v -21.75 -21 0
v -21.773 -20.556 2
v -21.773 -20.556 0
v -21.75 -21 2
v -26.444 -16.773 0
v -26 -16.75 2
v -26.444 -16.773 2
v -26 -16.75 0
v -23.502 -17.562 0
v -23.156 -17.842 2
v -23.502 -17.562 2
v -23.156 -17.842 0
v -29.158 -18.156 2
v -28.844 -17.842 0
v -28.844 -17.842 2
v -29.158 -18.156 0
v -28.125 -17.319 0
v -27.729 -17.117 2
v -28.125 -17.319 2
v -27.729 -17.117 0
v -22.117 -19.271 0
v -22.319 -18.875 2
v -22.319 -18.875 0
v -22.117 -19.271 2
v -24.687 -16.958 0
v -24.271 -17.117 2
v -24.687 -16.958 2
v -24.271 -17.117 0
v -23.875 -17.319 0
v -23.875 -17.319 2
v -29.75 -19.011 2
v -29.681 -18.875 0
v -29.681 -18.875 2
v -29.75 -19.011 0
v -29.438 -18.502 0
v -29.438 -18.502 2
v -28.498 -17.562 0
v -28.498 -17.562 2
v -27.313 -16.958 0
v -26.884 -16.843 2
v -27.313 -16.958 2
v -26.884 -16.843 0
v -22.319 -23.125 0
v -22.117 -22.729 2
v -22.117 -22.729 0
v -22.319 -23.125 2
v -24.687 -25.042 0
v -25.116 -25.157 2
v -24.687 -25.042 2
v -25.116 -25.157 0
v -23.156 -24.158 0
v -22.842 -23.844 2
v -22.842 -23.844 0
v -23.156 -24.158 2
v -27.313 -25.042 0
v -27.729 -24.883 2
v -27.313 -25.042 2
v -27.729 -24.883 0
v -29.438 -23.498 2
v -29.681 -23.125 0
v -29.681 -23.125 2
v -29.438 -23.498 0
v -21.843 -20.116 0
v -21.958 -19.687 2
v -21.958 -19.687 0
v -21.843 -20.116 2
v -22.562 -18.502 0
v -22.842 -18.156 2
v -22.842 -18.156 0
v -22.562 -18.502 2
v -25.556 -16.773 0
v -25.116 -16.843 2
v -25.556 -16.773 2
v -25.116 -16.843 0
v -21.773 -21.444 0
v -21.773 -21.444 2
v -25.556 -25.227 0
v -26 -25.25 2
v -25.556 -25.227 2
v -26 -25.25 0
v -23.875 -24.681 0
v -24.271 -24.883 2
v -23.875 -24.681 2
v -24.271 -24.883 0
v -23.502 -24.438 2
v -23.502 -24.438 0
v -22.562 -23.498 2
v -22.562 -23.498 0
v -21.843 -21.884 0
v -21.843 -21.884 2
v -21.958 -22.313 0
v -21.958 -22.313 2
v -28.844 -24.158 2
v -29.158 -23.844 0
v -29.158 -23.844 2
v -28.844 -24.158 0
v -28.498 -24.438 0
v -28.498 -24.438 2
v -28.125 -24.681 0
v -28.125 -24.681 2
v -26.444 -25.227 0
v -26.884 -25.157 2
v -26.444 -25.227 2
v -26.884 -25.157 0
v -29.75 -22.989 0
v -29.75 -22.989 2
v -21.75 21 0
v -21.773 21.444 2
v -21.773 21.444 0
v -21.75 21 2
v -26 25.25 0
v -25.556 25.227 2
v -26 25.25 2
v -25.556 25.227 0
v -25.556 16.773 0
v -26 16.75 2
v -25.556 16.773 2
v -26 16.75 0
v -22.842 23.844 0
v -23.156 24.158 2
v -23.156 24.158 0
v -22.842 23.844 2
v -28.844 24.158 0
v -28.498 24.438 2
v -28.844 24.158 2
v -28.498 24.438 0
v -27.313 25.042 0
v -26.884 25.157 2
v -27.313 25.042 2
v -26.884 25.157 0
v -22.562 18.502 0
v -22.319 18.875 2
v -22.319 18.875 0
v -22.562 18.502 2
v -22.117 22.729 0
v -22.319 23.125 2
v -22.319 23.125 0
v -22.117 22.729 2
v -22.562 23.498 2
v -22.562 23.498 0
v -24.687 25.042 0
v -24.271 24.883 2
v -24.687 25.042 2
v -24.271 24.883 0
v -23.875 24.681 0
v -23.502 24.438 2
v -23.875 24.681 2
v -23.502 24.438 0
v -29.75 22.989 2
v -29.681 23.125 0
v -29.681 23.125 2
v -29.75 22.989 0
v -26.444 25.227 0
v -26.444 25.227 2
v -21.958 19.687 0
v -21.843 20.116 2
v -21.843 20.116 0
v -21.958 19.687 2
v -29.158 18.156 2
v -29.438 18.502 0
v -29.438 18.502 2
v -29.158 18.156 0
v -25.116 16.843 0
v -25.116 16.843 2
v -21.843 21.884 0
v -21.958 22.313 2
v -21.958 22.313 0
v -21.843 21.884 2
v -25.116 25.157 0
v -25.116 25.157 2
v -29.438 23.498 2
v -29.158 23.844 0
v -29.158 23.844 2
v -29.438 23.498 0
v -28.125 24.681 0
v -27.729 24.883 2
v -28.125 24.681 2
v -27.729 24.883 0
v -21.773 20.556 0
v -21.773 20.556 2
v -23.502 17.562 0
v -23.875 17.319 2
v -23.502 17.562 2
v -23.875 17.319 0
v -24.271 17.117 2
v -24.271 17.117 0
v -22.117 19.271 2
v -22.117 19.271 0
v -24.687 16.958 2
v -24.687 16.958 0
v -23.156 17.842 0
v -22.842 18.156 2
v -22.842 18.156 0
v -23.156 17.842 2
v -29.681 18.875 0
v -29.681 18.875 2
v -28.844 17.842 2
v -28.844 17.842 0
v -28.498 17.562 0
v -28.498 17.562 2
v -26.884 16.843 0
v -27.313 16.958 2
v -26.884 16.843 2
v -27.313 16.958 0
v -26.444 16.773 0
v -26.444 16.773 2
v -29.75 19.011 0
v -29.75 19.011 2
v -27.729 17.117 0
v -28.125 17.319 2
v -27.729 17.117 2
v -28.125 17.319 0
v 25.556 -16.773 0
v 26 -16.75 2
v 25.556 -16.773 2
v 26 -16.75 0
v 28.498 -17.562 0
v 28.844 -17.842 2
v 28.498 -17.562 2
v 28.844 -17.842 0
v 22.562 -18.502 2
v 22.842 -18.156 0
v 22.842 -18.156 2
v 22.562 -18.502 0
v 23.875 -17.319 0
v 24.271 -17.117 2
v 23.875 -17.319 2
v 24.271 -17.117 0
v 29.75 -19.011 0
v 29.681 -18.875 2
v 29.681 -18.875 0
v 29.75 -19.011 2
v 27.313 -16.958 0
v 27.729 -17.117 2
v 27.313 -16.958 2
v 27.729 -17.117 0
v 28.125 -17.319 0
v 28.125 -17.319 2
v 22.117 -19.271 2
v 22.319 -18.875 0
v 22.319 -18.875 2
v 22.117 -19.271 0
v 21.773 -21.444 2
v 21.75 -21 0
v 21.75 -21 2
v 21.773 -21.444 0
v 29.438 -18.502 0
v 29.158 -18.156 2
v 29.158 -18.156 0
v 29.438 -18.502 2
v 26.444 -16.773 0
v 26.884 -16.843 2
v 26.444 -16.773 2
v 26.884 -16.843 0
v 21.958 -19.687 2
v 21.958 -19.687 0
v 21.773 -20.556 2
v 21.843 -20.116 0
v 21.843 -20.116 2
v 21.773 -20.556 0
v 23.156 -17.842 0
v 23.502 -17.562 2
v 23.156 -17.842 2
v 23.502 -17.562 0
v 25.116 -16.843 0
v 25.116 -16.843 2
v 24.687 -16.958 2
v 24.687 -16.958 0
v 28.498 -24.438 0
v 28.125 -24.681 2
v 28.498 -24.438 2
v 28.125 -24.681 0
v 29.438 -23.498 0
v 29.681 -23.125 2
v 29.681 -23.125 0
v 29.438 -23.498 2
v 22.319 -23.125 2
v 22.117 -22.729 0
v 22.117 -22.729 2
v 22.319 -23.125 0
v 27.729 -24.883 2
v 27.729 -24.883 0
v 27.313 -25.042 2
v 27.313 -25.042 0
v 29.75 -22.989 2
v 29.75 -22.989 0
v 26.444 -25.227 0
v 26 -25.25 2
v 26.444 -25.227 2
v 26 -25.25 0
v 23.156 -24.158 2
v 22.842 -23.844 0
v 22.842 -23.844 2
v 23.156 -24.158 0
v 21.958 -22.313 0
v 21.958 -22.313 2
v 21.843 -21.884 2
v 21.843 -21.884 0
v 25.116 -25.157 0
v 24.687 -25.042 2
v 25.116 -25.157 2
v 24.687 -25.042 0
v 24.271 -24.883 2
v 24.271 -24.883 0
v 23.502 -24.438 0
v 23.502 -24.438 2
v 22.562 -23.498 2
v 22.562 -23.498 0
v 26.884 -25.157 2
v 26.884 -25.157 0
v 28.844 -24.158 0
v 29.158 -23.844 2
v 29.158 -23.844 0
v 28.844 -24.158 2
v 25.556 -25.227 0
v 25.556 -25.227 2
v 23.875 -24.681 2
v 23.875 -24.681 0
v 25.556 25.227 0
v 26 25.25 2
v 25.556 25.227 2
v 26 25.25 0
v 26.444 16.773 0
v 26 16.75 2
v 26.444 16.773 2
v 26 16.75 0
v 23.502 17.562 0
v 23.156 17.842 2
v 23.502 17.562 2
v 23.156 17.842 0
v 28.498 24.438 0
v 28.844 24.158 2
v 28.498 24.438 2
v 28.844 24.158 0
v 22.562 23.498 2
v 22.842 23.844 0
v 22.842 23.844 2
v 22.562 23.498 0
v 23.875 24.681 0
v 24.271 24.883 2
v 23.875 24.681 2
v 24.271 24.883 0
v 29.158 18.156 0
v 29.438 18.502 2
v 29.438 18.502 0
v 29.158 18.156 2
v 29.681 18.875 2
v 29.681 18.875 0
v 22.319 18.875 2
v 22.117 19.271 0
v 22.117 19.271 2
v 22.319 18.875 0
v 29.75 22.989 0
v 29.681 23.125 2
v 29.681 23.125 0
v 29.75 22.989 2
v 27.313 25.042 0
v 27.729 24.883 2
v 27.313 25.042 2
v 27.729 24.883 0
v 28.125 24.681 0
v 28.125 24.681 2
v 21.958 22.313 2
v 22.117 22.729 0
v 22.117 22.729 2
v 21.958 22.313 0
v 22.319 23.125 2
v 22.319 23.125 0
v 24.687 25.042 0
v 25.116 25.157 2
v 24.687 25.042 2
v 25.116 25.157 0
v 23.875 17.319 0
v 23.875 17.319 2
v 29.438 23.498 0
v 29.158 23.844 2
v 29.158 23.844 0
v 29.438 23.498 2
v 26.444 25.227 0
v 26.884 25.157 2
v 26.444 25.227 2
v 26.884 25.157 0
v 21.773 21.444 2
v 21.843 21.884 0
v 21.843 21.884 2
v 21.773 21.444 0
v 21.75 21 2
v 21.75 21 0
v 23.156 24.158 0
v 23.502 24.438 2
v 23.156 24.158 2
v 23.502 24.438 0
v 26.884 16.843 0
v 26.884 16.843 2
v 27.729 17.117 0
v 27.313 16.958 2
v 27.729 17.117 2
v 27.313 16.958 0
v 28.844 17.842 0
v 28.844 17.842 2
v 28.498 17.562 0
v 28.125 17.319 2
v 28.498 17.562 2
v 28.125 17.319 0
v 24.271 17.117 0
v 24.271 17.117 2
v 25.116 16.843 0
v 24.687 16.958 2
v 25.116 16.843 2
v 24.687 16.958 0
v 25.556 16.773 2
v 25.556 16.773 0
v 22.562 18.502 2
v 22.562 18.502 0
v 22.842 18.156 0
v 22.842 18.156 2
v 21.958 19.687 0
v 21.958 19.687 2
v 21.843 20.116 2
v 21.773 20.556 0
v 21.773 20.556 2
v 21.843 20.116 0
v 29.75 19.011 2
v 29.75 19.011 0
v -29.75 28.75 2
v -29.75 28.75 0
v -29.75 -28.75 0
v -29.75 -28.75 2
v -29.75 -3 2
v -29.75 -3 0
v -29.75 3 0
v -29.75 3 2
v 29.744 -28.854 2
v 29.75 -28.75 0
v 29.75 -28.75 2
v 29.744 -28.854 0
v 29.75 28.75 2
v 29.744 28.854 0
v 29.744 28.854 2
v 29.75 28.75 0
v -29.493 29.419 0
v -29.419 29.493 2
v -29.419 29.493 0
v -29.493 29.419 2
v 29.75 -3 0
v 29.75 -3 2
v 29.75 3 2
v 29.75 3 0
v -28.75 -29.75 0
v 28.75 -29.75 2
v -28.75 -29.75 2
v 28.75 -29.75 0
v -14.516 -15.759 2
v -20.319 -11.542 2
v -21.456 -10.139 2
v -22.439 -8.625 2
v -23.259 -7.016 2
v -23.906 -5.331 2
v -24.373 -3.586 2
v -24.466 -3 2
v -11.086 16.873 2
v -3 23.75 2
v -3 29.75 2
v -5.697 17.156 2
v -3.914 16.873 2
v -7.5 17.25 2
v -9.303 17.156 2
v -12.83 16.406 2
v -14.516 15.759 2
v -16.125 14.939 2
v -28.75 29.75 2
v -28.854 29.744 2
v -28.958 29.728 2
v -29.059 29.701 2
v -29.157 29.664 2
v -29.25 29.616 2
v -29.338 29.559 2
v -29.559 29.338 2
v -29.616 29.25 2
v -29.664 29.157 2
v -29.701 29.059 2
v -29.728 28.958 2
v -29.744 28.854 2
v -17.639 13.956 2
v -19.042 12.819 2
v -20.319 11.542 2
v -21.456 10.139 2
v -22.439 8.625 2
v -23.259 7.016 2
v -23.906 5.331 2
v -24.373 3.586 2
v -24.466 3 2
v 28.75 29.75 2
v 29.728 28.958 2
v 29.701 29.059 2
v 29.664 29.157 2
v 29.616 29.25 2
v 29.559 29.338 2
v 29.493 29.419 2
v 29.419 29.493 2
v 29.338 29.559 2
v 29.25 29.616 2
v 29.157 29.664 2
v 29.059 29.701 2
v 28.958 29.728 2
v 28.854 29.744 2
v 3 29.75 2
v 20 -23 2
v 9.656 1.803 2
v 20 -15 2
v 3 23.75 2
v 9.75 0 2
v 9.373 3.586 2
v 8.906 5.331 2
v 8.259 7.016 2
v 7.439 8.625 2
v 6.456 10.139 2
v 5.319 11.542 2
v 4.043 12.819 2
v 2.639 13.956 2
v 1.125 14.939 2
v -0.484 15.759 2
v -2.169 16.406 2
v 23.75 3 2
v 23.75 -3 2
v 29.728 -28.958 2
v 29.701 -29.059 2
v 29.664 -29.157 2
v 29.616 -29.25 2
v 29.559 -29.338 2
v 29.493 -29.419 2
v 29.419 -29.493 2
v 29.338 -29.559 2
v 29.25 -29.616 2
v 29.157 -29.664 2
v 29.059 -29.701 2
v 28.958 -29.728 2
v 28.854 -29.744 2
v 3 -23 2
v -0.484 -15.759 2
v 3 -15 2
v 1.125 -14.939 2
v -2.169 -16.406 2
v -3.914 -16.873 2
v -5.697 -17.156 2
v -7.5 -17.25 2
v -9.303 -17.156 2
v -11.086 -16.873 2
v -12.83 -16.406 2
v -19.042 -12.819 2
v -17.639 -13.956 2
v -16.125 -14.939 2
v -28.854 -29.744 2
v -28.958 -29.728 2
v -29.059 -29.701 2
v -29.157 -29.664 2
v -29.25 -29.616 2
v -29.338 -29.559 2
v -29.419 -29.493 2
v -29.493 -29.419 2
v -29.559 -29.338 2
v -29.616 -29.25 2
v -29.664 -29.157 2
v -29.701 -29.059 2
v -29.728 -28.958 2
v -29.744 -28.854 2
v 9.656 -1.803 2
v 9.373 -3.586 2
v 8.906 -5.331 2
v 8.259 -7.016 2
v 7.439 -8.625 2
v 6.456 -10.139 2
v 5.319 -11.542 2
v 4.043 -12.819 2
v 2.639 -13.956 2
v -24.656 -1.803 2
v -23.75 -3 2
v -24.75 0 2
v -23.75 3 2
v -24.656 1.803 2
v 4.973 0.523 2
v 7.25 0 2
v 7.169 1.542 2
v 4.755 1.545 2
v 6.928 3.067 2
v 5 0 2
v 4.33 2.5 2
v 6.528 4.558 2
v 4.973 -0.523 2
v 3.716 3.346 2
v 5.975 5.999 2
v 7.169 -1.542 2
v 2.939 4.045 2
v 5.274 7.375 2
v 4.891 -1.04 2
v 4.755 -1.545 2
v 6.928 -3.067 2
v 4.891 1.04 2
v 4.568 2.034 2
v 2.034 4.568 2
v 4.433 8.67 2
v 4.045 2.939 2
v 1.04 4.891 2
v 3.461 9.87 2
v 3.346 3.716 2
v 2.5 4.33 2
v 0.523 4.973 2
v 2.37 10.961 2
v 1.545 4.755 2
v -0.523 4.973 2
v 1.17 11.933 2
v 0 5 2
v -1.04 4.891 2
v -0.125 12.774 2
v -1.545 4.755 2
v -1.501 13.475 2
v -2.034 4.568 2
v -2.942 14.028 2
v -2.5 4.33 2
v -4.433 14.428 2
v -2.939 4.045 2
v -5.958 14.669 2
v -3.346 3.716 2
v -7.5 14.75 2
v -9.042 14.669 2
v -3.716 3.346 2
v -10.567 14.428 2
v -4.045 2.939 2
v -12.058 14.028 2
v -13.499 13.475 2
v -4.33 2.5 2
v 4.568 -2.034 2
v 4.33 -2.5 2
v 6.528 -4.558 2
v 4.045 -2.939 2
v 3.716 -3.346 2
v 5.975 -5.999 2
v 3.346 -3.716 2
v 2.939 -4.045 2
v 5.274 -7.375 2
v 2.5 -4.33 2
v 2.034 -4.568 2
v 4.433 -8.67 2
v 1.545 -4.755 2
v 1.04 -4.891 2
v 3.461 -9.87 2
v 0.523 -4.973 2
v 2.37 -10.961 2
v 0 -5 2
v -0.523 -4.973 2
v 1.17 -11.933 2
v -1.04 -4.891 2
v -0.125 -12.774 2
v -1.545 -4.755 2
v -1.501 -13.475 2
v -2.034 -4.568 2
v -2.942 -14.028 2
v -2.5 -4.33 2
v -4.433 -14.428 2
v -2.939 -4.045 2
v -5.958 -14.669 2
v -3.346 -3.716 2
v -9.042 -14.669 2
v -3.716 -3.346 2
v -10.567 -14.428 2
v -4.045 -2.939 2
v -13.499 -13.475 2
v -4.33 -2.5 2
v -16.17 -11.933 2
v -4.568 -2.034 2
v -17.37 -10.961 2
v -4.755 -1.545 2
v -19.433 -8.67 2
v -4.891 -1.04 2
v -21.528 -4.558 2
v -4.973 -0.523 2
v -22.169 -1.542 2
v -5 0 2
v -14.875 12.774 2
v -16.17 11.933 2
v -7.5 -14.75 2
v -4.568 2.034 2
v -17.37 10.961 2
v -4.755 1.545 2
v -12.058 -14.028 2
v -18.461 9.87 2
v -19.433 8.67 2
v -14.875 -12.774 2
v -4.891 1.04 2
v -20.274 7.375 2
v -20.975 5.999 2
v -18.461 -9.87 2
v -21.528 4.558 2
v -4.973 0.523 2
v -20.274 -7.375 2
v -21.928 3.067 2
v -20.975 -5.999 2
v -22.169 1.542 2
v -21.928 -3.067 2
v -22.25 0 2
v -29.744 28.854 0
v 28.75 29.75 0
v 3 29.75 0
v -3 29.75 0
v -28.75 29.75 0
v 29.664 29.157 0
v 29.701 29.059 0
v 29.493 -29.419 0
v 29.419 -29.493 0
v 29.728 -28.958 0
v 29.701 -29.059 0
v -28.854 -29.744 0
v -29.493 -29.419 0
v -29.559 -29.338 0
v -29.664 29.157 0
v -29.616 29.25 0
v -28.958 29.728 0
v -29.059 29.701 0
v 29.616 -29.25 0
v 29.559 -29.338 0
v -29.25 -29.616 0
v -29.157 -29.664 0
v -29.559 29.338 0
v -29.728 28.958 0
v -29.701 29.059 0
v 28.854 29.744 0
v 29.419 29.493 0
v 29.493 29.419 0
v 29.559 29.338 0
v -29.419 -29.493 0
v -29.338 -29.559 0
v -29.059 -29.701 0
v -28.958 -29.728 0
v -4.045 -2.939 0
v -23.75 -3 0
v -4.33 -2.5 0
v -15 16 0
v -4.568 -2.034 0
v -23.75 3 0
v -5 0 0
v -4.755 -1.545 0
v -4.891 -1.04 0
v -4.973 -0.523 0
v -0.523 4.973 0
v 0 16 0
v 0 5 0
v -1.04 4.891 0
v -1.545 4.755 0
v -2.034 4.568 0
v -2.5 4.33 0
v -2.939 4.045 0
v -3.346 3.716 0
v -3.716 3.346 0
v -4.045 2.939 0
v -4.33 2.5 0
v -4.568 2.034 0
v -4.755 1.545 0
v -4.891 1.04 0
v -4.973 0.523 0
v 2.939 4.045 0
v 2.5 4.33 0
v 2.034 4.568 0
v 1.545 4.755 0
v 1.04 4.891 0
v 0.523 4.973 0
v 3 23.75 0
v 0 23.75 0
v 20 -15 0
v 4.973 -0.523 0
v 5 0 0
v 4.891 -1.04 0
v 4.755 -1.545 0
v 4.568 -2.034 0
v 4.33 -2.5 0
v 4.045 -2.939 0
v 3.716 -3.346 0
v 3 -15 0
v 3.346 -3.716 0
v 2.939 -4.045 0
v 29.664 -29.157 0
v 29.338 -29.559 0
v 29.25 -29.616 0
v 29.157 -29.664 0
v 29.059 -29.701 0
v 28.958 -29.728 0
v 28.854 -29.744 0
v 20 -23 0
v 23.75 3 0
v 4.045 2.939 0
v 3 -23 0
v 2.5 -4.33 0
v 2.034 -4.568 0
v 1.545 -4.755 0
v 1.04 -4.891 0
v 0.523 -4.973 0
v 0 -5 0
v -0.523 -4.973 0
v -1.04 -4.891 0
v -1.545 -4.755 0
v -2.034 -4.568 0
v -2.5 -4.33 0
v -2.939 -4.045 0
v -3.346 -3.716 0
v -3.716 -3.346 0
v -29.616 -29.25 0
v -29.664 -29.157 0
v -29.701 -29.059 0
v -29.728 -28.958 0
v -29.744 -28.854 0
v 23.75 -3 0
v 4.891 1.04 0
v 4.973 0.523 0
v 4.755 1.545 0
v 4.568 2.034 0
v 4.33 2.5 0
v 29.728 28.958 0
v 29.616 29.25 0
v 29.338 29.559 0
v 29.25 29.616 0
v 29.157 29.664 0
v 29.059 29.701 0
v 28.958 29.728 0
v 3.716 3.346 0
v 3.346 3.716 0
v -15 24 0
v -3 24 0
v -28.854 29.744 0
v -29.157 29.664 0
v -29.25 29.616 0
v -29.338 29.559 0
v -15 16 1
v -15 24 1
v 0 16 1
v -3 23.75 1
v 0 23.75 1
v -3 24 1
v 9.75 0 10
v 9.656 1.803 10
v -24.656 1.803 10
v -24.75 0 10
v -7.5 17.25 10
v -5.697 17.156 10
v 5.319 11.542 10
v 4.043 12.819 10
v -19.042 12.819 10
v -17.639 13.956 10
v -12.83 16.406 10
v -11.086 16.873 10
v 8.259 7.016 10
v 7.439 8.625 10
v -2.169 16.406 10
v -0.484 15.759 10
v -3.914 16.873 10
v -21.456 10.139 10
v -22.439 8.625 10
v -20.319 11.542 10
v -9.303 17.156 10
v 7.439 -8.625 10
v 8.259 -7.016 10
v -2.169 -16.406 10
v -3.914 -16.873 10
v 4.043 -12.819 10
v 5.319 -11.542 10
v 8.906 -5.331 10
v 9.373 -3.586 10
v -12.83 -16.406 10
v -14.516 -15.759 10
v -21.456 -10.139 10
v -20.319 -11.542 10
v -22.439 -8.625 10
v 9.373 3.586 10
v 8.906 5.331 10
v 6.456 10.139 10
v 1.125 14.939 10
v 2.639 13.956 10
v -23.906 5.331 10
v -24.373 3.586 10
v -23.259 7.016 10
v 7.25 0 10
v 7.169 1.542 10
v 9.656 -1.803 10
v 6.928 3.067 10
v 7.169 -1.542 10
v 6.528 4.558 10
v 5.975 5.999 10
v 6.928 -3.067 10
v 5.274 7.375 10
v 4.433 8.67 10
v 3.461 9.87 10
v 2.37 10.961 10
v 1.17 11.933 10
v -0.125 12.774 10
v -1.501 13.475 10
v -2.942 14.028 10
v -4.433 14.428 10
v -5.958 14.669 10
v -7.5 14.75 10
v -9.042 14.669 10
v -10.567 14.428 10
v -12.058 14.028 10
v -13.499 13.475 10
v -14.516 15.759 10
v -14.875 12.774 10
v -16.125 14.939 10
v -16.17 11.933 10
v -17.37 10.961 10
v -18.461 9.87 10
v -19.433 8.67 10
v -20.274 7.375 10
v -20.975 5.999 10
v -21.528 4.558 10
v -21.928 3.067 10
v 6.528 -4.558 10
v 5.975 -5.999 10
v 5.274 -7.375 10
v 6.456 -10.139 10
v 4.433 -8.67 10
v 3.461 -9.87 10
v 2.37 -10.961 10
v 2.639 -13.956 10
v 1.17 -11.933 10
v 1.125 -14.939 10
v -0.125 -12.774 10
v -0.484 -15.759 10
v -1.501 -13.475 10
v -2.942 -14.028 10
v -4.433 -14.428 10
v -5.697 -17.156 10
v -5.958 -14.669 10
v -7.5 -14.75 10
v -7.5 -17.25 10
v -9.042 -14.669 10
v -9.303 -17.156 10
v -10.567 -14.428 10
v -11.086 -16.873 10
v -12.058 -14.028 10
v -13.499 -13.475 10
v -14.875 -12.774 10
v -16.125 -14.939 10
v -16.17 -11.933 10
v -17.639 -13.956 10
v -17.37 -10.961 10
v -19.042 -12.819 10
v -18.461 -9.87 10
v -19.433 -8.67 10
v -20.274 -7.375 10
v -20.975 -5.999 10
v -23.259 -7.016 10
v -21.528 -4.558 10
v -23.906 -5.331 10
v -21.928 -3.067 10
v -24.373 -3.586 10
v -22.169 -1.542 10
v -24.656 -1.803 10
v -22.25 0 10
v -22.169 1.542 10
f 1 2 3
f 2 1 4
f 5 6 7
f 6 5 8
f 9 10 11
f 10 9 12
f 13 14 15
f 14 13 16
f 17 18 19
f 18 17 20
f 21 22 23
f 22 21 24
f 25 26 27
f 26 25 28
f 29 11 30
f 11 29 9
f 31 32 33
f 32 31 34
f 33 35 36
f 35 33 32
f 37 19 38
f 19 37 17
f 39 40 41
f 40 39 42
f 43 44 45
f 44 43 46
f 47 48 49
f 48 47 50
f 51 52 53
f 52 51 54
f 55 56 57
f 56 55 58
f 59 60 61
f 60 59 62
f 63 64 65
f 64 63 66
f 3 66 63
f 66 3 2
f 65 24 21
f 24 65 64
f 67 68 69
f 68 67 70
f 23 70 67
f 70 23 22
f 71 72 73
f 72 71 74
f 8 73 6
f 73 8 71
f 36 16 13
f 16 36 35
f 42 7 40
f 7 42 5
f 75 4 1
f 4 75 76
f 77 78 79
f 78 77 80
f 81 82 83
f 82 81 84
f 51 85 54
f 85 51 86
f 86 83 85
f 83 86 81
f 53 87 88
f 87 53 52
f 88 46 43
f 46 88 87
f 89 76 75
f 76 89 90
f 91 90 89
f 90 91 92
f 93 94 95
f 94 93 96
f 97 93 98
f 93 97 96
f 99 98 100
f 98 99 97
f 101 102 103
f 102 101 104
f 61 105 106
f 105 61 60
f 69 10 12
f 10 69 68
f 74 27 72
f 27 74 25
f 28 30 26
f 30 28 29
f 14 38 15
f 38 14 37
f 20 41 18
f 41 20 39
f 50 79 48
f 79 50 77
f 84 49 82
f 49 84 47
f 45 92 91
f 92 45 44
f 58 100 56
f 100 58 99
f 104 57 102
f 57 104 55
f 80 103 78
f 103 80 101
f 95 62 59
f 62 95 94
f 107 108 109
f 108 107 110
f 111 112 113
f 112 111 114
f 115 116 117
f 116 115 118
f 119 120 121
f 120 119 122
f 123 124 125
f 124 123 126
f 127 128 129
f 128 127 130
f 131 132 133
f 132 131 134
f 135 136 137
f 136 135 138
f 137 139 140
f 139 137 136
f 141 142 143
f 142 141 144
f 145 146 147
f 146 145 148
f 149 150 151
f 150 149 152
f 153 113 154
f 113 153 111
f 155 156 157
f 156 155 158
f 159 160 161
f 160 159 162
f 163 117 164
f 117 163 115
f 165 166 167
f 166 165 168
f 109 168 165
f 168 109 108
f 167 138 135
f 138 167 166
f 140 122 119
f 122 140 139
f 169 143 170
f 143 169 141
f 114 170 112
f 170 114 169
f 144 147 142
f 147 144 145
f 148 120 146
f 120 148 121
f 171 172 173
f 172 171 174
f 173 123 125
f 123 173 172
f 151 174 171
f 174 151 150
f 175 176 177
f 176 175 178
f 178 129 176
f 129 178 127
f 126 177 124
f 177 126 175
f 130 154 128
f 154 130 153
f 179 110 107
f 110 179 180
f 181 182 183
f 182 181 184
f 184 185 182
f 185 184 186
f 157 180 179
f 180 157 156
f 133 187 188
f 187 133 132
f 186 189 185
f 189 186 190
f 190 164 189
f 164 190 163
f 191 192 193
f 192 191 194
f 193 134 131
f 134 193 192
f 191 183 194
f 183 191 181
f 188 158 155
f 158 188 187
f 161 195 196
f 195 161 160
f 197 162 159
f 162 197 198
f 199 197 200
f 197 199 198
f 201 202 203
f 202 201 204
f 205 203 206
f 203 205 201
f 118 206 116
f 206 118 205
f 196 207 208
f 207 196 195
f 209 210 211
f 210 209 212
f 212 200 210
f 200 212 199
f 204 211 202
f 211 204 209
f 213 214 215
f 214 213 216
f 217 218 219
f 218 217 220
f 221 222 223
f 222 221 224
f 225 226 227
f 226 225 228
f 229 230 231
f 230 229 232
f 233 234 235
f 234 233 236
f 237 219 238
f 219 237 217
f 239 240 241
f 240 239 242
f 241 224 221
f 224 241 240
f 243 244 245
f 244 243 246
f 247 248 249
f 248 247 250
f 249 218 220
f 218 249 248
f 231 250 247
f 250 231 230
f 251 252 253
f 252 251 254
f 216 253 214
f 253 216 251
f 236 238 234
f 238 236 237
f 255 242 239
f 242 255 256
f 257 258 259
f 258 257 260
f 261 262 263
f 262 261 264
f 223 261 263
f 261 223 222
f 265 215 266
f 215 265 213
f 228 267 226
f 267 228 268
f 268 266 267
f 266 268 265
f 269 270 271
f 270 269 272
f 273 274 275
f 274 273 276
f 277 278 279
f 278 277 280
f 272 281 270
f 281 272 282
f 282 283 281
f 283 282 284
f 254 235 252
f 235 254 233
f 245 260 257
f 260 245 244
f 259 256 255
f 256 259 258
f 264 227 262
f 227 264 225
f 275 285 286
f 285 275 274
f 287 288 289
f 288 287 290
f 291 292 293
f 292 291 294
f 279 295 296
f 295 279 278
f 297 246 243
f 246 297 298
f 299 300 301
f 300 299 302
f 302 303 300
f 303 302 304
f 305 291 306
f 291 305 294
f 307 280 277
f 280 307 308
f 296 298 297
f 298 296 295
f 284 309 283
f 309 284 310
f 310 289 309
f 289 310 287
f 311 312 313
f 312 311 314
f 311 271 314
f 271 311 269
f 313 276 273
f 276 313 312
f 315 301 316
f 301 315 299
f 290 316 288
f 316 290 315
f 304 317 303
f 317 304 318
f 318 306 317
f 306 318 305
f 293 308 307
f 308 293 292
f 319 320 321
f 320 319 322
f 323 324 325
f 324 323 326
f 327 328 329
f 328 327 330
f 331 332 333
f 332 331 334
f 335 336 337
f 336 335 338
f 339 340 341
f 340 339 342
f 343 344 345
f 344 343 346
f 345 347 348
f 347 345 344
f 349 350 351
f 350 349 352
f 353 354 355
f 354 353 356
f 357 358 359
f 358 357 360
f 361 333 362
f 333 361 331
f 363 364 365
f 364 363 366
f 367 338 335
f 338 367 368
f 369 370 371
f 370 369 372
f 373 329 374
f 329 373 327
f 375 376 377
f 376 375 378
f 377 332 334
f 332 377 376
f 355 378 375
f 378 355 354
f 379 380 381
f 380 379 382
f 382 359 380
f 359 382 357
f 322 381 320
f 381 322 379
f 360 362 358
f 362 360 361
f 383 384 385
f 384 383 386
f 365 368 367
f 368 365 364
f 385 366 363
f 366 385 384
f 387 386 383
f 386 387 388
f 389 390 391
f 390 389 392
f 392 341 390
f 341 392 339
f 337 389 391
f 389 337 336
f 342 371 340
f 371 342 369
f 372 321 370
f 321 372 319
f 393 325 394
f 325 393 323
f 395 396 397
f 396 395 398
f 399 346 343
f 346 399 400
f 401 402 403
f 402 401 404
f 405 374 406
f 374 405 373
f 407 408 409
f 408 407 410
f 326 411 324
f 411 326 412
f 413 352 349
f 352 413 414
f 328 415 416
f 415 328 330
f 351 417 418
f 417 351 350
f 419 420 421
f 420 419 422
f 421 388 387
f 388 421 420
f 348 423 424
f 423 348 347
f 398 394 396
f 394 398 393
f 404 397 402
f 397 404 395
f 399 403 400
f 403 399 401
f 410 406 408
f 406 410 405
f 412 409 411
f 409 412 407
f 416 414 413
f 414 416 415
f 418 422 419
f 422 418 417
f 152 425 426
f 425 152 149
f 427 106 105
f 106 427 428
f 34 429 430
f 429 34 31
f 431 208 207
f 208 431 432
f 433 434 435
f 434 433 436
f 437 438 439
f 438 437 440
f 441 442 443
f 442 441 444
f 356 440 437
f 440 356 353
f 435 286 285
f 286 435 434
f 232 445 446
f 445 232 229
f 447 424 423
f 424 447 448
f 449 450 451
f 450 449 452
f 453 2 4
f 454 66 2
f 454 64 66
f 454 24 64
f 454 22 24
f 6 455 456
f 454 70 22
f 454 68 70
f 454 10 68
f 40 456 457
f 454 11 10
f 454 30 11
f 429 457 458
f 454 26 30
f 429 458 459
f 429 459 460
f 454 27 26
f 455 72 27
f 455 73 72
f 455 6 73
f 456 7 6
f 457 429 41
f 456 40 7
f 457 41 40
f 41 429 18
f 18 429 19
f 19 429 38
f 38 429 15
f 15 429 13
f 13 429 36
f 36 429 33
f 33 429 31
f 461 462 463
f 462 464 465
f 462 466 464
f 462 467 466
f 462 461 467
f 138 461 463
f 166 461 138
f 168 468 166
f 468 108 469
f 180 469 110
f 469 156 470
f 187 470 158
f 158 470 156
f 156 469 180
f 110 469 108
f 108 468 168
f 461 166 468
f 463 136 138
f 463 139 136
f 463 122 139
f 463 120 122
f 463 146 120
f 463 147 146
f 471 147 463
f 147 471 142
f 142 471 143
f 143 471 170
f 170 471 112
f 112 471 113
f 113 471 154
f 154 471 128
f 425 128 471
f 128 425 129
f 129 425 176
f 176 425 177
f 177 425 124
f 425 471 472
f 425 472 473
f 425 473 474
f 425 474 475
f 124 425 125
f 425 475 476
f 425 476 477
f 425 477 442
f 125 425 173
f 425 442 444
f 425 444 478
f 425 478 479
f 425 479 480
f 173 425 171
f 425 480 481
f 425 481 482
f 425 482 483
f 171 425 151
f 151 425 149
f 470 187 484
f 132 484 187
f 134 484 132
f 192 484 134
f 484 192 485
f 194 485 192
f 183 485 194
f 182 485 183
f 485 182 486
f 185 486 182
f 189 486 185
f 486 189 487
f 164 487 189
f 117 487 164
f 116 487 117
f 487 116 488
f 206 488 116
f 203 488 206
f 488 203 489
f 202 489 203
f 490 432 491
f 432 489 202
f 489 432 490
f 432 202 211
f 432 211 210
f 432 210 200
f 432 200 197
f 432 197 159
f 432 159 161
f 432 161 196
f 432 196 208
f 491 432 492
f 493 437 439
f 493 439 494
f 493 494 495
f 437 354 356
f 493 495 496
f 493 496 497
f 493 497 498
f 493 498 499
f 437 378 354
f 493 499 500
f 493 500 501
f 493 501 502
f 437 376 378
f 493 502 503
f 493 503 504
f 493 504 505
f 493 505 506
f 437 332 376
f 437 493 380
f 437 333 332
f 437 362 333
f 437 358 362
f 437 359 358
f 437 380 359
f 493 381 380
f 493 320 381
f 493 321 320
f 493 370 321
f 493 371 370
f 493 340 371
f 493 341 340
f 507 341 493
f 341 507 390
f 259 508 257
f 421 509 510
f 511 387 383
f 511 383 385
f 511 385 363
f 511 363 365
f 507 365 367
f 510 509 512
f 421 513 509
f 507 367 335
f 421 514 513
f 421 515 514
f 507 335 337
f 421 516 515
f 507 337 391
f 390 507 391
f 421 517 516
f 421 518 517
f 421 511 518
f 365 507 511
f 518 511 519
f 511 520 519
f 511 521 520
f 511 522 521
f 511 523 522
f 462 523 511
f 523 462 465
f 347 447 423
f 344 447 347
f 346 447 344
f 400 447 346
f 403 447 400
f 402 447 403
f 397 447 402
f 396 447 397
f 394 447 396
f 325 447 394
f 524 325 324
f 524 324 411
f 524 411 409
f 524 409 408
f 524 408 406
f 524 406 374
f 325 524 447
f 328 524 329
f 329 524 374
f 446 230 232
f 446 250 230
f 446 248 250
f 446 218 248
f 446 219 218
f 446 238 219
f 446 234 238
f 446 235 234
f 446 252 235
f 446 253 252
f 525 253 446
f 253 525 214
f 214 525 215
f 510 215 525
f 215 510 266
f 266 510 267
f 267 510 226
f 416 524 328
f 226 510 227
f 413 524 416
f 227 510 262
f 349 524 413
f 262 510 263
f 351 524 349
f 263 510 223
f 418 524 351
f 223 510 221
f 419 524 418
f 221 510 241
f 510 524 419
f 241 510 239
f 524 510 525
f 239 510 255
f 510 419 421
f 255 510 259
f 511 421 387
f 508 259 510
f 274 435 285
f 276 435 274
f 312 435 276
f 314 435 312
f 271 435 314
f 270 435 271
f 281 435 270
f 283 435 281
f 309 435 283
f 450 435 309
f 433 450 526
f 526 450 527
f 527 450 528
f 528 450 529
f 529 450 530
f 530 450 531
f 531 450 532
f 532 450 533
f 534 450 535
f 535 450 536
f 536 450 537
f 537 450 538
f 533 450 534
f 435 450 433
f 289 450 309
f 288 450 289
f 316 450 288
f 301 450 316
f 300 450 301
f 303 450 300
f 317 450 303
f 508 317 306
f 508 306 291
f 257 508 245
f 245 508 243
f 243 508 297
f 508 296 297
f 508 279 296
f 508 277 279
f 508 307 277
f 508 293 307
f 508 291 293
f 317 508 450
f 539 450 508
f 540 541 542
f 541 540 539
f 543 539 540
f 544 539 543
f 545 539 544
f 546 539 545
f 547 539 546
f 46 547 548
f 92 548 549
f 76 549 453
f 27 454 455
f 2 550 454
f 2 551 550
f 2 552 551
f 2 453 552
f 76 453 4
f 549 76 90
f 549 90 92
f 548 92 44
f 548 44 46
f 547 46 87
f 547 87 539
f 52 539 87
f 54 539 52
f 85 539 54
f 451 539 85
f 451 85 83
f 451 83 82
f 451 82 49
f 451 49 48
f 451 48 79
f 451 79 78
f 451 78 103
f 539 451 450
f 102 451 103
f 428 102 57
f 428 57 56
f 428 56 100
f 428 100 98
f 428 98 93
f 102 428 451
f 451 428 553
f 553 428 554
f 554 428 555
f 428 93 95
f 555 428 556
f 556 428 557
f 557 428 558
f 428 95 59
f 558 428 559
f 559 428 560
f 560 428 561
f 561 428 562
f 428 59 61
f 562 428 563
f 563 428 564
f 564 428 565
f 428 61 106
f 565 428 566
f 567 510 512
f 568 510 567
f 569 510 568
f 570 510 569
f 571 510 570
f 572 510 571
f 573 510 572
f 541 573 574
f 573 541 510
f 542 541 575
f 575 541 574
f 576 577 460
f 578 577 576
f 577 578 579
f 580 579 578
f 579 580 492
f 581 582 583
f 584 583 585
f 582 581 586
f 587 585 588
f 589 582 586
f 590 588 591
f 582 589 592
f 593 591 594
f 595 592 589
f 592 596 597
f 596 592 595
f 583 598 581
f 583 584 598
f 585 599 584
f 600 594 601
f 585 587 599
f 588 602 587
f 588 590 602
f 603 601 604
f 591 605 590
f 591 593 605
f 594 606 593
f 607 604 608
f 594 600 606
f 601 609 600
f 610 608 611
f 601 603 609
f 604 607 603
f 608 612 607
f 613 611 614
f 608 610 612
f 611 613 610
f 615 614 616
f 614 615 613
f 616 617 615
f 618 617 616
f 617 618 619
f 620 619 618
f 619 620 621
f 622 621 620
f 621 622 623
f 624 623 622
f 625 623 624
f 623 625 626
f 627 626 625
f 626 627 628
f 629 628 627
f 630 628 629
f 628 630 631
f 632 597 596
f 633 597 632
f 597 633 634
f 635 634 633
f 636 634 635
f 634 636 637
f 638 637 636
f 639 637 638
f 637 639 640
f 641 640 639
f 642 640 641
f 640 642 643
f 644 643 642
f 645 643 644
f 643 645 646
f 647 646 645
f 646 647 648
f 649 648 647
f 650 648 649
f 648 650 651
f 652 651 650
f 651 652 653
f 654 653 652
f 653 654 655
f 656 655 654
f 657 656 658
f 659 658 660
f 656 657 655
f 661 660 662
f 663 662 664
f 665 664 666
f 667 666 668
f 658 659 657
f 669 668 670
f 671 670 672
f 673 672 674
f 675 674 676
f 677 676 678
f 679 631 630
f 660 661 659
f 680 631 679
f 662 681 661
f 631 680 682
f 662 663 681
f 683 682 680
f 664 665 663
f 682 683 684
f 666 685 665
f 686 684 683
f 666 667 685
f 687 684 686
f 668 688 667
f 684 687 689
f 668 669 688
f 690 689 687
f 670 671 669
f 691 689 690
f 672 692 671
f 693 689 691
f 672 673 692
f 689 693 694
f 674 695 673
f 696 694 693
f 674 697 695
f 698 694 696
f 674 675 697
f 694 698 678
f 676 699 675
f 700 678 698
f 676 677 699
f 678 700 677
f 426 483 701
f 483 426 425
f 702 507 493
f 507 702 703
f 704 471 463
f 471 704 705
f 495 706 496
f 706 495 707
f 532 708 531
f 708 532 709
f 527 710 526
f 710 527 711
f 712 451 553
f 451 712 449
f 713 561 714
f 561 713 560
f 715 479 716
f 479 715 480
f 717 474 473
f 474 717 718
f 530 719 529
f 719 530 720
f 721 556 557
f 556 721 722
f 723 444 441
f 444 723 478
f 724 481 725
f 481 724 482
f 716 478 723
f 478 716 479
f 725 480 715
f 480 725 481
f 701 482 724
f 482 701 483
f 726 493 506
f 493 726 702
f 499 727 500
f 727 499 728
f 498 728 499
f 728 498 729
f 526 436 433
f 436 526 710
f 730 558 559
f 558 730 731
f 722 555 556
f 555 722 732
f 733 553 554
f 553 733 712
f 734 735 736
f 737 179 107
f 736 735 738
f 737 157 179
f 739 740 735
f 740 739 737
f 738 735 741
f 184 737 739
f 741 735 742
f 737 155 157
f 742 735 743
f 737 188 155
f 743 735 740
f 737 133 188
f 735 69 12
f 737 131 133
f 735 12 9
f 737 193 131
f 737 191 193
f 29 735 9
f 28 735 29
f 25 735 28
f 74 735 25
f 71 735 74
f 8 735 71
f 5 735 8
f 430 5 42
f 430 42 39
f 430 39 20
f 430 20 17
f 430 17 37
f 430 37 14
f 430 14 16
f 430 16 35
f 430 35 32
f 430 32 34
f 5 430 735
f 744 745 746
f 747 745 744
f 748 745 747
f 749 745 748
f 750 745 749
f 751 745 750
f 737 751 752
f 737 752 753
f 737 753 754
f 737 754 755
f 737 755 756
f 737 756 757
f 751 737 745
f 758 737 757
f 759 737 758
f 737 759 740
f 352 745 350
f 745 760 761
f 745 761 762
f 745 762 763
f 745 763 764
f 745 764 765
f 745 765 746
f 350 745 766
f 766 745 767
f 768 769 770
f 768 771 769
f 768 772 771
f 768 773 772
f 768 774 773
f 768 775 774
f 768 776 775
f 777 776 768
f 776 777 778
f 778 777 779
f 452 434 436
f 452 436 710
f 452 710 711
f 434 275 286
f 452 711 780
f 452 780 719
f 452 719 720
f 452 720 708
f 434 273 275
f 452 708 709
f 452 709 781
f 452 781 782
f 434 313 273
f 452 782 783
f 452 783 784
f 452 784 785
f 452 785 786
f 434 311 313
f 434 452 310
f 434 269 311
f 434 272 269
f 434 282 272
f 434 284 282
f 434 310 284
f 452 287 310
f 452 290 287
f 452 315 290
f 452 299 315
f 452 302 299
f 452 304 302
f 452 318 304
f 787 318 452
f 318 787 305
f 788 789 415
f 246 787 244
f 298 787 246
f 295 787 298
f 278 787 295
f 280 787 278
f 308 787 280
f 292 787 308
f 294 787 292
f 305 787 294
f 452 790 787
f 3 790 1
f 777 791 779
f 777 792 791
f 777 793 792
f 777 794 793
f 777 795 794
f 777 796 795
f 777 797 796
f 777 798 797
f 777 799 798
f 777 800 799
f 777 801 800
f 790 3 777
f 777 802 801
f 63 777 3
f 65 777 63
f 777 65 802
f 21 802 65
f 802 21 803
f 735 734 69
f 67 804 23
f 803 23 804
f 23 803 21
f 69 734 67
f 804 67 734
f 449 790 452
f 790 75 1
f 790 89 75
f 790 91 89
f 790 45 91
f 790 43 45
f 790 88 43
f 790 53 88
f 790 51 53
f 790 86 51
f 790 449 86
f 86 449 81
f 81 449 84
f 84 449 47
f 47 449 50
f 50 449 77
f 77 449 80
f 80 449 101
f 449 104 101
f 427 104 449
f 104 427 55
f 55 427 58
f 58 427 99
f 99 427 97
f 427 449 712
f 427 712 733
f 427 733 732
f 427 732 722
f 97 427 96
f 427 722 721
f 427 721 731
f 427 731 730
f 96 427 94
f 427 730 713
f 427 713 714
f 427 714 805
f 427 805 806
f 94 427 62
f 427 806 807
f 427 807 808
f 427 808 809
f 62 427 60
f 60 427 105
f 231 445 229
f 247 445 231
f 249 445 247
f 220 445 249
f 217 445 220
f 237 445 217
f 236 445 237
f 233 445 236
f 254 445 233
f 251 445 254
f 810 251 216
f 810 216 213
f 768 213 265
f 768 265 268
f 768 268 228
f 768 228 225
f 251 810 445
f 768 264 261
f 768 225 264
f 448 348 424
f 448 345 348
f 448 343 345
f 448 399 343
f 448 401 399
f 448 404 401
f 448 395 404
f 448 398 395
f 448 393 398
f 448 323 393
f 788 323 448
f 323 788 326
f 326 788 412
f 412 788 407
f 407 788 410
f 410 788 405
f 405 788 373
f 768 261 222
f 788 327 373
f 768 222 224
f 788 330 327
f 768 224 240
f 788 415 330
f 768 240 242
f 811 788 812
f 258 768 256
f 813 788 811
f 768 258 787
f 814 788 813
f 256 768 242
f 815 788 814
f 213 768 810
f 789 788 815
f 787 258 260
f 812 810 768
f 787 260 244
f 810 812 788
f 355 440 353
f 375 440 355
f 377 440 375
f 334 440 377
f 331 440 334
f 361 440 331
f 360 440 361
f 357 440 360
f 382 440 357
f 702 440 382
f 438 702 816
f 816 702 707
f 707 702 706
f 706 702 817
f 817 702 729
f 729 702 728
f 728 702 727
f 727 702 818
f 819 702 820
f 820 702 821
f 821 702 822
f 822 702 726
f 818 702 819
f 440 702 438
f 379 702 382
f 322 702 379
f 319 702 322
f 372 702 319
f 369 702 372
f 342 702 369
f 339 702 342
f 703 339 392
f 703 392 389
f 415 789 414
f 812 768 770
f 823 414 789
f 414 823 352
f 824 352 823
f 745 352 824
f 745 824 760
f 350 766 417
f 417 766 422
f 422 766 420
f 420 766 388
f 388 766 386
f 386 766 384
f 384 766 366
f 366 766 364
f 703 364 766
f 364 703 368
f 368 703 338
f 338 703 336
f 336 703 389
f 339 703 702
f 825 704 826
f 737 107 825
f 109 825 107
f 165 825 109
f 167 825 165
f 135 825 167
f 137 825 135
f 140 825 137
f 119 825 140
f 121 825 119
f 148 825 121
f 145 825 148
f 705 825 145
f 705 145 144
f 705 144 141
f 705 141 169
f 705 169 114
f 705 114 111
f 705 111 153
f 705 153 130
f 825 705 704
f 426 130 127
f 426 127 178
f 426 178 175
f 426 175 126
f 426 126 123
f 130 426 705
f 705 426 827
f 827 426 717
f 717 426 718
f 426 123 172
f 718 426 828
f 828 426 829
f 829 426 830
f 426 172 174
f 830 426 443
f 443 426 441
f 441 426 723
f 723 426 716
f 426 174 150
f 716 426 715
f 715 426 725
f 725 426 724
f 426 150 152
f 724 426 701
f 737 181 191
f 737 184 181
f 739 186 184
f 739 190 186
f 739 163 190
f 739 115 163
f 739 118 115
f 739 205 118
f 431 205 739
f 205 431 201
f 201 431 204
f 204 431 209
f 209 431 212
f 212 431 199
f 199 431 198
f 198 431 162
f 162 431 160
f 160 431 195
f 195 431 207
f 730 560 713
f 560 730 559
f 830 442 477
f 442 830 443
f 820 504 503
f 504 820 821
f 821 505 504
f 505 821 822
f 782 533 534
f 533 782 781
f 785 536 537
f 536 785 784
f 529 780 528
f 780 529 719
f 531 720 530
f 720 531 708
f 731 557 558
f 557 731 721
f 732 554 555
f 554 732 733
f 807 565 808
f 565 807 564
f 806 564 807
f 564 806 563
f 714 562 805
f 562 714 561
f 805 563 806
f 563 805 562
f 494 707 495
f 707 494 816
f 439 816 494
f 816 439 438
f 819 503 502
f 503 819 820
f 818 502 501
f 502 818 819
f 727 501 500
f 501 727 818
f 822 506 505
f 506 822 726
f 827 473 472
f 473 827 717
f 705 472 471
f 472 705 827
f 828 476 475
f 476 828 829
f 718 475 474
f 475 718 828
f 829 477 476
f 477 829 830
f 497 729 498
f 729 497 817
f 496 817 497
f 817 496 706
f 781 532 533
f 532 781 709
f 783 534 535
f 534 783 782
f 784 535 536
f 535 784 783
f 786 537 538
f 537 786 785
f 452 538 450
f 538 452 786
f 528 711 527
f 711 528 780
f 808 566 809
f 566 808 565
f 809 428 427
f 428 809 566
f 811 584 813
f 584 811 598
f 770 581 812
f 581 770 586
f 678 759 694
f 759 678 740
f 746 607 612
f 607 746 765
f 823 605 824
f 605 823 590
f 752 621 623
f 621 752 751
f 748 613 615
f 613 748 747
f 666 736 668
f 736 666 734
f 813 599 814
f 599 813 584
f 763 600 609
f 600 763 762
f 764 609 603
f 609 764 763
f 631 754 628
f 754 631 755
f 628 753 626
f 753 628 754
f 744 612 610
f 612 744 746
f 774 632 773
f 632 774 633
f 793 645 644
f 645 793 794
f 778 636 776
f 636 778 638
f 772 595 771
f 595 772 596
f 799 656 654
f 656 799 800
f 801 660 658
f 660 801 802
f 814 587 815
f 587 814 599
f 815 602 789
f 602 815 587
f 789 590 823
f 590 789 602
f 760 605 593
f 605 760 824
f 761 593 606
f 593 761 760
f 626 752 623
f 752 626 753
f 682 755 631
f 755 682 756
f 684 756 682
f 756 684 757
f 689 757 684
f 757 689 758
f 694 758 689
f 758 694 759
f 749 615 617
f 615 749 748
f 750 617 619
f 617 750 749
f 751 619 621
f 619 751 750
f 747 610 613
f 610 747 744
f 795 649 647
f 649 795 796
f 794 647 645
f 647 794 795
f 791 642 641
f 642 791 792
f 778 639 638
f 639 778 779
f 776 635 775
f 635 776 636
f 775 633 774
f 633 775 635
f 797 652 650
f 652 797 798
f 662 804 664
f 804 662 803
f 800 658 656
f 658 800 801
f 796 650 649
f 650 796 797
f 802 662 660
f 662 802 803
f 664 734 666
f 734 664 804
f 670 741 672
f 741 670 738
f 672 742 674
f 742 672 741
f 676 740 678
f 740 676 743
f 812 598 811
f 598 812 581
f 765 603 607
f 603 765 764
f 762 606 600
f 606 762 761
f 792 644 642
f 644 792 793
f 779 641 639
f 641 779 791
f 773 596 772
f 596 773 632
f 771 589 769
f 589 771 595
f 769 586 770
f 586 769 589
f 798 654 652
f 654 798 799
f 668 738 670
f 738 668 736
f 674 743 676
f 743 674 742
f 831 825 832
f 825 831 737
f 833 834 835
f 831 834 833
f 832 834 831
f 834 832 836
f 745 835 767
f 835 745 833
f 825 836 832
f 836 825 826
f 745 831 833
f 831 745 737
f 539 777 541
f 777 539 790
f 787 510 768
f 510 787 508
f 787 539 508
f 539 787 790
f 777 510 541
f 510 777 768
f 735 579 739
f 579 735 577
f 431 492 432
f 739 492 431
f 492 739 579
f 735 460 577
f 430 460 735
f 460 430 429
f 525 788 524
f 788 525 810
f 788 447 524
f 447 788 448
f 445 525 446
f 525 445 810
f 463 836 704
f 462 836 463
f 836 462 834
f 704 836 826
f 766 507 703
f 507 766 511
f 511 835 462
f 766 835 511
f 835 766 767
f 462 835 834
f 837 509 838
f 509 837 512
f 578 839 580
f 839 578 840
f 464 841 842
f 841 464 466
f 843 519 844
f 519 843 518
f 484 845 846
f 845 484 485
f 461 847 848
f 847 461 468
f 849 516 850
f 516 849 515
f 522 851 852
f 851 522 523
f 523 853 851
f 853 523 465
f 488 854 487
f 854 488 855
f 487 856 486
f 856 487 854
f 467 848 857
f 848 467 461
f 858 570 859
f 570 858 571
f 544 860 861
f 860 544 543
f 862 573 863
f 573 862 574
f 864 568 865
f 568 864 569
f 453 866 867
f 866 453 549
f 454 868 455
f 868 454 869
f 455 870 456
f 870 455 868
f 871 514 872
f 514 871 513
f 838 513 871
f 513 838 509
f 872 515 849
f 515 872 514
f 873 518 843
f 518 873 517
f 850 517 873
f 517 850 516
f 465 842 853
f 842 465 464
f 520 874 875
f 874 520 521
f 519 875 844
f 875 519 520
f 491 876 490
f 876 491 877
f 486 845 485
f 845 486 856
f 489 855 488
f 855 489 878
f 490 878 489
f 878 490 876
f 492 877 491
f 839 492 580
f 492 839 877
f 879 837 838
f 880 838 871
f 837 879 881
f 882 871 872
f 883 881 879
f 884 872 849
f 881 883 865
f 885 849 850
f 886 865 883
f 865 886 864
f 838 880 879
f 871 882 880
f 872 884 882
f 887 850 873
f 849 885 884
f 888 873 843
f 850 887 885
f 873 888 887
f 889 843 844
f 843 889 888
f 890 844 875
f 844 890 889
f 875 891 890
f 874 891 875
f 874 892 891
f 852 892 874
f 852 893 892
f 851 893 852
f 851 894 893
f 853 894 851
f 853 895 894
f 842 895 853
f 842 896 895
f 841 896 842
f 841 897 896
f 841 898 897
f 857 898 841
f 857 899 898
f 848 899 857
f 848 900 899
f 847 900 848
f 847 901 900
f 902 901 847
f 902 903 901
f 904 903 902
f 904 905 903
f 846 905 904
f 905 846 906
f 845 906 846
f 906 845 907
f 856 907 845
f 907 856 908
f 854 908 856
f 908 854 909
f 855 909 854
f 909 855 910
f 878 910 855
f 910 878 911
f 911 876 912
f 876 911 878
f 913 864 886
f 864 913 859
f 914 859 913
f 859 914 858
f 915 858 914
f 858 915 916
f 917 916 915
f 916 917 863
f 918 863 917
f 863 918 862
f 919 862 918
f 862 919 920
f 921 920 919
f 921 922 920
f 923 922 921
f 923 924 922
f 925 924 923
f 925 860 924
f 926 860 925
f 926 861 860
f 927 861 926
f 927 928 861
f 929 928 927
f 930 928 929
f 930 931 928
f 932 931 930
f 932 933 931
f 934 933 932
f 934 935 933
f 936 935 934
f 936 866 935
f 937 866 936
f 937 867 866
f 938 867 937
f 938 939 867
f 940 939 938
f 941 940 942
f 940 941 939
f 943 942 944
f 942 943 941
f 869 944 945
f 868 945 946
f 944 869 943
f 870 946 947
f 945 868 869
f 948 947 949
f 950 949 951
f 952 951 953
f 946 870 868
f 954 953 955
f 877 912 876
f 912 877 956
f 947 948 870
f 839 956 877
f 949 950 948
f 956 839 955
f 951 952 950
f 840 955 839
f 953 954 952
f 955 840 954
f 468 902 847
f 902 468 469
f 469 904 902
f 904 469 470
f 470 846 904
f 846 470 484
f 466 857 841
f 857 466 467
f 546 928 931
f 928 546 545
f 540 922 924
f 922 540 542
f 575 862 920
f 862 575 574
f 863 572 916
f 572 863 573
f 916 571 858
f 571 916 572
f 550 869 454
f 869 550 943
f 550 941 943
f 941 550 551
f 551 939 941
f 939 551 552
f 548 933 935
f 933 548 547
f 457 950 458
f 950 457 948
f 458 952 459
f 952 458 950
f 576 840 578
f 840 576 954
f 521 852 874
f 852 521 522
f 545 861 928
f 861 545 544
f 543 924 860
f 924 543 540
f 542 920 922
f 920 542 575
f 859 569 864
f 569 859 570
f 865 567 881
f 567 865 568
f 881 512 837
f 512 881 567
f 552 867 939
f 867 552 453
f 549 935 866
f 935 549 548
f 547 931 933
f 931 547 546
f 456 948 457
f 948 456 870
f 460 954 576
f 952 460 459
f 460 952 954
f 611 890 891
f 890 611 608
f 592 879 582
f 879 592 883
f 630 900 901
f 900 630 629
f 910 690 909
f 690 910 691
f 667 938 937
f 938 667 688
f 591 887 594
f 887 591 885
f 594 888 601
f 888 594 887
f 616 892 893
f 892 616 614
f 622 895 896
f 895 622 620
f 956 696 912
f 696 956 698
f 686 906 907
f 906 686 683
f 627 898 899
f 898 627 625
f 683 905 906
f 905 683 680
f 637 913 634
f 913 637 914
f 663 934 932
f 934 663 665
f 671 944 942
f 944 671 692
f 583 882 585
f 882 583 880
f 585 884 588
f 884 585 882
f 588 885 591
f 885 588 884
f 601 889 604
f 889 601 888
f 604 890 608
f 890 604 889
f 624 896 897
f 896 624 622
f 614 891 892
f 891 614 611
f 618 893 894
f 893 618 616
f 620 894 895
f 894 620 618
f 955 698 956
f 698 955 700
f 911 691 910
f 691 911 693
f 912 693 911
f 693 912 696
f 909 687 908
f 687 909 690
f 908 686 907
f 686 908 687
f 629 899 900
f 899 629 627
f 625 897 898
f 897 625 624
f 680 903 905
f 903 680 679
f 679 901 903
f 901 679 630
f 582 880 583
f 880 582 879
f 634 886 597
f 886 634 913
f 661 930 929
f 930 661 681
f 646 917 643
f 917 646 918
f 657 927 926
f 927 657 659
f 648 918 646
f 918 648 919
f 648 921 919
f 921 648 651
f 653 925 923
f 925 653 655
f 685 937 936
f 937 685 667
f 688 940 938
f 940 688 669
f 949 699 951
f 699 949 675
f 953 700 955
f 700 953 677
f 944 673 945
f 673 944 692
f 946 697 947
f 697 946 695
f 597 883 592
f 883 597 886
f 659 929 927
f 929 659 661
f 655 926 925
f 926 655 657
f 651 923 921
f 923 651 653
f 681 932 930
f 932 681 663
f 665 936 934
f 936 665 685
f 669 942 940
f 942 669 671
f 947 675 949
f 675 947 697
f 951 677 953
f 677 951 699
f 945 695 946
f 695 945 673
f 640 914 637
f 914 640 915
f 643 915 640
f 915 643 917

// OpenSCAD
// mid_plate_v1.scad
plate_l = 59.5;
plate_w = 59.5;
plate_h = 2.0;
motor_x_offset = -7.5;  // MEASURED M3

$fn = 60;

module rounded_rect(l, w, h, r) {
    hull() {
        translate([-l/2 + r, -w/2 + r, 0]) cylinder(r=r, h=h);
        translate([ l/2 - r, -w/2 + r, 0]) cylinder(r=r, h=h);
        translate([-l/2 + r,  w/2 - r, 0]) cylinder(r=r, h=h);
        translate([ l/2 - r,  w/2 - r, 0]) cylinder(r=r, h=h);
    }
}

union() {
    difference() {
        // Base plate body
        rounded_rect(plate_l, plate_w, plate_h, 1.0);

        // Holes to allow the 4 corner bosses to pass through
        for(sx = [-1, 1]) for(sy = [-1, 1]) {
            translate([sx * 26, sy * 21, -1])
                cylinder(d=8.5, h=plate_h + 2);
        }

        // Central hole for motor shaft to pass up to the cam
        translate([0, 0, -1]) cylinder(d=10, h=plate_h + 2);

        // Slot for motor wires to drop down into the electronics bay
        translate([motor_x_offset, 20, -1]) cube([15, 8, plate_h + 2], center=true);

        // v6.1: ULN2003 connector relief slot. The off-the-shelf driver module measured
        // ~20mm tall as wired vs the 16mm pocket. With wires soldered flat the stack is
        // ~12mm, but the JST socket + plug needs headroom — this through-slot lets the
        // connector corner poke past the plate. Positioned at (+X,-Y) clear of the motor
        // collar (collar max x at y=-15 is x=0.5) and the boss hole at (26,-21).
        // → Orient the ULN2003 with its JST/header edge toward this corner.
        translate([3, -23, -1]) cube([17, 8, plate_h + 2]);

        // Wire pass-through notches: pogo wires drop from z31 into pocket
        // -X edge notch (pogo spring side)
        translate([-plate_l/2, -3, -1]) cube([6, 6, plate_h + 2]);
        // +X edge notch (pogo pad side)
        translate([plate_l/2 - 6, -3, -1]) cube([6, 6, plate_h + 2]);
        // +Y edge notch (hall sensor wires from base plate)
        translate([-3, plate_w/2 - 6, -1]) cube([6, 6, plate_h + 2]);
    }
    
    // Motor Retaining Collar (Centered at measured X=-7.5)
    // Audit 2 fix (2026-05-15): added boss relief notches — collar at x=-7.5 with r=17.25mm
    // was crashing into corner bosses at (-15, +-15), distance=16.55mm < 17.25mm
    // >>> collar ID is BLOCKED ON MEASUREMENT (M1) — 29.5 assumes a Ø28 can. <<<
    // If the real can is bigger the motor will not drop into this collar at all.
    translate([motor_x_offset, 0, plate_h]) difference() {
        cylinder(d=34.5, h=8); // 8mm tall collar
        translate([0,0,-1]) cylinder(d=29.5, h=10); // MEASURE (M1): can Ø + 1.5mm
        // Boss relief notches for the two -X corner bosses
        for(sy = [-1, 1])
            translate([-26 - motor_x_offset, sy * 21, -1])
                cylinder(d=9, h=10, $fn=40);  // 9mm clears 8mm boss + 0.5mm/side
    }
}
